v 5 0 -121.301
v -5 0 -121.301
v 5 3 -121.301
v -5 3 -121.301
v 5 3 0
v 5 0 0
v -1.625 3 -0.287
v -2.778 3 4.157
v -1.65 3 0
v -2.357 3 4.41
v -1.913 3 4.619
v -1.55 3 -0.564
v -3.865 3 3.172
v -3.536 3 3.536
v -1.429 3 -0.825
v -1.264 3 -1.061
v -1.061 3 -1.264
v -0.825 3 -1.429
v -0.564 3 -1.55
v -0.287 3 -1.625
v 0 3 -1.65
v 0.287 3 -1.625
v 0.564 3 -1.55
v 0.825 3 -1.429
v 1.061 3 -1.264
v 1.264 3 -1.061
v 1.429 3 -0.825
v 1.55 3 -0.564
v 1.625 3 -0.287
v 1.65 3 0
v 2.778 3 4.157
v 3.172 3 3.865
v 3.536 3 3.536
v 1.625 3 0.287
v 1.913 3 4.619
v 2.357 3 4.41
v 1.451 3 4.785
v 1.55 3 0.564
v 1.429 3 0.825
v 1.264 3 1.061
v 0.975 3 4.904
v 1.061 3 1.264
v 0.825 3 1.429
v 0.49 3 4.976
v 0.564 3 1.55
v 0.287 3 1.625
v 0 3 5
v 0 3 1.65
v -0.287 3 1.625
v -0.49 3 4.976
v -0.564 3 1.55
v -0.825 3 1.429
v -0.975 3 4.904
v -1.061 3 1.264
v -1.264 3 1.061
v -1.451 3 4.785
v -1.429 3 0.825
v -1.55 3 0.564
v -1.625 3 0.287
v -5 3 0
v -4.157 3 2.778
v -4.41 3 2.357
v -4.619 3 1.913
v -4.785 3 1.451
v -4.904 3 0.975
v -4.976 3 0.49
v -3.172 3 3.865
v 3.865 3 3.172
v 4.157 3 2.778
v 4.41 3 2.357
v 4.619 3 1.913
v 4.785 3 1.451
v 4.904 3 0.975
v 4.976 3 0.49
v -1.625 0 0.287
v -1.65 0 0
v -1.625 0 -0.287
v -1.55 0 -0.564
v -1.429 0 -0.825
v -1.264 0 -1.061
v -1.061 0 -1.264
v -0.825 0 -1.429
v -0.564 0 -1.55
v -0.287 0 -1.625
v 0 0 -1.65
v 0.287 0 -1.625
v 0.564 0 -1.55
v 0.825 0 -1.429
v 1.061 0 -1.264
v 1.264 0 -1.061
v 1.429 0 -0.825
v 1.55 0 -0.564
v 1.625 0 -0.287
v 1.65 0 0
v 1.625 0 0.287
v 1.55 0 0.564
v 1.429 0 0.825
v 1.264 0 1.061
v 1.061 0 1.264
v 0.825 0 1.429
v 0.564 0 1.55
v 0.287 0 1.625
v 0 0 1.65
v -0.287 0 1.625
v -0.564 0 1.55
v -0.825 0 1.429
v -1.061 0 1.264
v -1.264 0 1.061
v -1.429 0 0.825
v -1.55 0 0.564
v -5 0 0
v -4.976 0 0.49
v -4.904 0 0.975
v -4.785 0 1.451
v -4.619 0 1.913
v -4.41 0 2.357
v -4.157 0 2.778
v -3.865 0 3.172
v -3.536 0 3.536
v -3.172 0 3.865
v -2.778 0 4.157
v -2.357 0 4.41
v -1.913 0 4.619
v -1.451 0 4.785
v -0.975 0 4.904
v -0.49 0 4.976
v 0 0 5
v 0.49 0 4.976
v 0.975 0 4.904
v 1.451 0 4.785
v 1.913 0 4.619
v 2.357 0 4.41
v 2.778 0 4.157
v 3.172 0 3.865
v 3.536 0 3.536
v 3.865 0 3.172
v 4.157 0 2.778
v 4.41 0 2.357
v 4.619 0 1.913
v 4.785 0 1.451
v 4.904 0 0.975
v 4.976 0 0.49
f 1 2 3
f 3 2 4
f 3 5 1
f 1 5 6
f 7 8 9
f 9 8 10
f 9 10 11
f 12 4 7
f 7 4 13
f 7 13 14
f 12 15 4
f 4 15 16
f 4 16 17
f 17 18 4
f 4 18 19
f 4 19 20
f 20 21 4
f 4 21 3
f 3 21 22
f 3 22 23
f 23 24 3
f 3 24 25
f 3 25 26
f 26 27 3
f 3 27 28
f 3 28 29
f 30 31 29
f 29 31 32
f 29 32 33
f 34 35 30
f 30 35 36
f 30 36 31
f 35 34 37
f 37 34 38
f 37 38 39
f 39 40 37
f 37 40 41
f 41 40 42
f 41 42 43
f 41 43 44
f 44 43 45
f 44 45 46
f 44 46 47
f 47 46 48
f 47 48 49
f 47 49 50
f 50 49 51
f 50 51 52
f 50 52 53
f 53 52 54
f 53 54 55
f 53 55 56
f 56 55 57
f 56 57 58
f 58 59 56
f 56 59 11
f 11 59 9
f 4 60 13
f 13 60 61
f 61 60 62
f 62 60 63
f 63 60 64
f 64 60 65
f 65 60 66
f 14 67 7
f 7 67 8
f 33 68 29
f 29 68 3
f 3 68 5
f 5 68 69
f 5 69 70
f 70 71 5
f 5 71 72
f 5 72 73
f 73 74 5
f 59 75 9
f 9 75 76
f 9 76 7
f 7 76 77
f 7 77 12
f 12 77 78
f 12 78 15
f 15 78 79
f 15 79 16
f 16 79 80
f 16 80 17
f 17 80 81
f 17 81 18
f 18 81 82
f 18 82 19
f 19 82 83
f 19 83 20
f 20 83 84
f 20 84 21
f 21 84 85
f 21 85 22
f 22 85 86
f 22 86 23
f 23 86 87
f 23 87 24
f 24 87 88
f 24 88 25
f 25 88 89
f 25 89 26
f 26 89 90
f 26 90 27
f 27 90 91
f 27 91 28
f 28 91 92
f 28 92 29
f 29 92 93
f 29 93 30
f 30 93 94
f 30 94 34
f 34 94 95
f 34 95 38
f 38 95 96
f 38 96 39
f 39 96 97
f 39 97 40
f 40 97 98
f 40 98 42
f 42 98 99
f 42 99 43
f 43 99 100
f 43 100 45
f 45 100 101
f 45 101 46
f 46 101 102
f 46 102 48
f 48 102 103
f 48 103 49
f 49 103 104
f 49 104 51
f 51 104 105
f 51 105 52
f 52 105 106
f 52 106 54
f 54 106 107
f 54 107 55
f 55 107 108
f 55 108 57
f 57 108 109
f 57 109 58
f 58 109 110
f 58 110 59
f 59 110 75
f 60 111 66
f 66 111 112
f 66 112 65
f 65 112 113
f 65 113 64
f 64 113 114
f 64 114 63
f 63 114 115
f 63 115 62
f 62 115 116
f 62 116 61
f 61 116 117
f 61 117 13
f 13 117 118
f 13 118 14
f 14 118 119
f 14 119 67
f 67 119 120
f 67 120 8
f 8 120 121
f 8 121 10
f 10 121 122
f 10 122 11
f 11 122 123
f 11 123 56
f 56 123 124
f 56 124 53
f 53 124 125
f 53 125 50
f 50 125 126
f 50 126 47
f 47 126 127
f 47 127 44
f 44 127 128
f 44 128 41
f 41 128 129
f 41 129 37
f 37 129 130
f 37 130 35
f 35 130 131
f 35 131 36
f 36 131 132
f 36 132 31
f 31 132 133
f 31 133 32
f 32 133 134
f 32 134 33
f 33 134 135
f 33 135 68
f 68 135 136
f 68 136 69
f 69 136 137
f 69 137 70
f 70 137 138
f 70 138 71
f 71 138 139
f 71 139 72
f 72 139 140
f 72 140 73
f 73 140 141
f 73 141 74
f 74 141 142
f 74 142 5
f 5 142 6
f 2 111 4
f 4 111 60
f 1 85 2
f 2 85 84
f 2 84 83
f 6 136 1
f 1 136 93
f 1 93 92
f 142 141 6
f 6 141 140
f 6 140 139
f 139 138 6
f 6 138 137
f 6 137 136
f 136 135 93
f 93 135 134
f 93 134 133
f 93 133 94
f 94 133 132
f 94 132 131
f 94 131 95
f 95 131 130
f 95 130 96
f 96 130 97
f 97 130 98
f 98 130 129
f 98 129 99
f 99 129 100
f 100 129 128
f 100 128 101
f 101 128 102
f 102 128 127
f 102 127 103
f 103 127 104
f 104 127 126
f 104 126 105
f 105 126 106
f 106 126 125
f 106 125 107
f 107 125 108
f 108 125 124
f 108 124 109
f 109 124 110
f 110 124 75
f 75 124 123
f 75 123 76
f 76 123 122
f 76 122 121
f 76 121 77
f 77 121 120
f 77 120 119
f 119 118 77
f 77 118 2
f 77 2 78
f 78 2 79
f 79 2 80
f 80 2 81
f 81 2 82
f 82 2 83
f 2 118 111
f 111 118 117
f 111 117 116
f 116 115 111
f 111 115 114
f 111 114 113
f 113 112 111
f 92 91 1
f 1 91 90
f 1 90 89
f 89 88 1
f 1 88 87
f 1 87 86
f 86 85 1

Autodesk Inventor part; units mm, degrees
ref_plane "YZ Plane" through (0, 0, 0) normal (1, 0, 0) x (0, 1, 0)
ref_plane "XZ Plane" through (0, 0, 0) normal (0, 1, 0) x (-1, 0, 0)
ref_plane "XY Plane" through (0, 0, 0) normal (0, 0, 1) x (1, 0, 0)
sketch "Sketch1" plane through (0, 0, 0) normal (0, 1, 0) x (-1, 0, 0)
  line L0 (0, 0) -> (0, -261.6) construction
  line L1 (5, 0) -> (5, -261.6)
  line L2 (-5, -261.6) -> (-5, 0)
  arc A0 (5, 0) -> (-5, 0) centre (0, 0) ccw
  arc A1 (-5, -261.6) -> (5, -261.6) centre (0, -261.6) ccw
  circle A2 centre (0, 0) radius 1.65
  circle A3 centre (0, -261.6) radius 1.65
  circle A4 centre (0, -153.559) radius 1.65
  point P0 (0, -130.8)
  dimension "d0" = 3.3
  dimension "d1" = 3.3
  dimension "d2" = 10
  dimension "d3" = 261.6
  dimension "d4" = 3.3
  dimension "d5" = 153.559
extrude "Extrusion1" add sketch "Sketch1" along normal blind 3
sketch "Sketch3" plane through (0, 3, 0) normal (0, 1, 0) x (1, 0, 0)
  line L0 (-22.4574, 275.926) -> (26.2563, 275.926)
  line L1 (26.2563, 275.926) -> (26.2563, 121.3008)
  line L2 (26.2563, 121.3008) -> (-22.4574, 121.3008)
  line L3 (-22.4574, 121.3008) -> (-22.4574, 275.926)
  line L4 (-103.4002, 357.0257) -> (155.5228, 357.0257)
  line L5 (155.5228, 357.0257) -> (155.5228, -67.8162)
  line L6 (155.5228, -67.8162) -> (-103.4002, -67.8162)
  line L7 (-103.4002, -67.8162) -> (-103.4002, 357.0257)
  point P0 (0, 0)
extrude "Extrusion2" cut sketch "Sketch3" against normal blind 100 contours L0 L1 L2 L3
properties part number "Part_2_p1"
